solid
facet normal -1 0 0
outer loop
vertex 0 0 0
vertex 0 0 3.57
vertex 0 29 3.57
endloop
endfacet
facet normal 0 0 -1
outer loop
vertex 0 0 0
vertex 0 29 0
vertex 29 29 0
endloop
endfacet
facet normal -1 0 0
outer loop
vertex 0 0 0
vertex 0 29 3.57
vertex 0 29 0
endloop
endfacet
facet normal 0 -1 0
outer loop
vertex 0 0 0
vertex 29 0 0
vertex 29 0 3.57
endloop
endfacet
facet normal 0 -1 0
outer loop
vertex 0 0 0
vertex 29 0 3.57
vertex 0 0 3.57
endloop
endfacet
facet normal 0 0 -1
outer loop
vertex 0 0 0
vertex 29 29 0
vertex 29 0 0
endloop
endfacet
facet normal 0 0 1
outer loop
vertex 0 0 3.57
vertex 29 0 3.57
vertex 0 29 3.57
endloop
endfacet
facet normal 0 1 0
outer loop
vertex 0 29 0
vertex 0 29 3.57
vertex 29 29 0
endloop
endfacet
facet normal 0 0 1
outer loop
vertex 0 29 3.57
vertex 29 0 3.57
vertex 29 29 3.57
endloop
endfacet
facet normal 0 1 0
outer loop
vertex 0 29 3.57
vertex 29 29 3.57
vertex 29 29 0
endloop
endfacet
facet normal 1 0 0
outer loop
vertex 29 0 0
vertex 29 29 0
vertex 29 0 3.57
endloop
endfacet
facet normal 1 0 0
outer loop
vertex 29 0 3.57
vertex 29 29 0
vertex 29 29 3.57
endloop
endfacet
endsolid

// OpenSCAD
/* Warning, this is a very basic generator with a lot of approximation 
input data : [BBGA, CWC, 29x29x3.57mm, 1221, , A, C04-25443A]
generated by com.zoubworld.electronics.cad.model3d.Basic
Date : Sun Feb 15 10:50:49 CET 2026
*/

//body
color("black")
translate([0,0,0])
cube([29.0,29.0,3.57], center=false);
